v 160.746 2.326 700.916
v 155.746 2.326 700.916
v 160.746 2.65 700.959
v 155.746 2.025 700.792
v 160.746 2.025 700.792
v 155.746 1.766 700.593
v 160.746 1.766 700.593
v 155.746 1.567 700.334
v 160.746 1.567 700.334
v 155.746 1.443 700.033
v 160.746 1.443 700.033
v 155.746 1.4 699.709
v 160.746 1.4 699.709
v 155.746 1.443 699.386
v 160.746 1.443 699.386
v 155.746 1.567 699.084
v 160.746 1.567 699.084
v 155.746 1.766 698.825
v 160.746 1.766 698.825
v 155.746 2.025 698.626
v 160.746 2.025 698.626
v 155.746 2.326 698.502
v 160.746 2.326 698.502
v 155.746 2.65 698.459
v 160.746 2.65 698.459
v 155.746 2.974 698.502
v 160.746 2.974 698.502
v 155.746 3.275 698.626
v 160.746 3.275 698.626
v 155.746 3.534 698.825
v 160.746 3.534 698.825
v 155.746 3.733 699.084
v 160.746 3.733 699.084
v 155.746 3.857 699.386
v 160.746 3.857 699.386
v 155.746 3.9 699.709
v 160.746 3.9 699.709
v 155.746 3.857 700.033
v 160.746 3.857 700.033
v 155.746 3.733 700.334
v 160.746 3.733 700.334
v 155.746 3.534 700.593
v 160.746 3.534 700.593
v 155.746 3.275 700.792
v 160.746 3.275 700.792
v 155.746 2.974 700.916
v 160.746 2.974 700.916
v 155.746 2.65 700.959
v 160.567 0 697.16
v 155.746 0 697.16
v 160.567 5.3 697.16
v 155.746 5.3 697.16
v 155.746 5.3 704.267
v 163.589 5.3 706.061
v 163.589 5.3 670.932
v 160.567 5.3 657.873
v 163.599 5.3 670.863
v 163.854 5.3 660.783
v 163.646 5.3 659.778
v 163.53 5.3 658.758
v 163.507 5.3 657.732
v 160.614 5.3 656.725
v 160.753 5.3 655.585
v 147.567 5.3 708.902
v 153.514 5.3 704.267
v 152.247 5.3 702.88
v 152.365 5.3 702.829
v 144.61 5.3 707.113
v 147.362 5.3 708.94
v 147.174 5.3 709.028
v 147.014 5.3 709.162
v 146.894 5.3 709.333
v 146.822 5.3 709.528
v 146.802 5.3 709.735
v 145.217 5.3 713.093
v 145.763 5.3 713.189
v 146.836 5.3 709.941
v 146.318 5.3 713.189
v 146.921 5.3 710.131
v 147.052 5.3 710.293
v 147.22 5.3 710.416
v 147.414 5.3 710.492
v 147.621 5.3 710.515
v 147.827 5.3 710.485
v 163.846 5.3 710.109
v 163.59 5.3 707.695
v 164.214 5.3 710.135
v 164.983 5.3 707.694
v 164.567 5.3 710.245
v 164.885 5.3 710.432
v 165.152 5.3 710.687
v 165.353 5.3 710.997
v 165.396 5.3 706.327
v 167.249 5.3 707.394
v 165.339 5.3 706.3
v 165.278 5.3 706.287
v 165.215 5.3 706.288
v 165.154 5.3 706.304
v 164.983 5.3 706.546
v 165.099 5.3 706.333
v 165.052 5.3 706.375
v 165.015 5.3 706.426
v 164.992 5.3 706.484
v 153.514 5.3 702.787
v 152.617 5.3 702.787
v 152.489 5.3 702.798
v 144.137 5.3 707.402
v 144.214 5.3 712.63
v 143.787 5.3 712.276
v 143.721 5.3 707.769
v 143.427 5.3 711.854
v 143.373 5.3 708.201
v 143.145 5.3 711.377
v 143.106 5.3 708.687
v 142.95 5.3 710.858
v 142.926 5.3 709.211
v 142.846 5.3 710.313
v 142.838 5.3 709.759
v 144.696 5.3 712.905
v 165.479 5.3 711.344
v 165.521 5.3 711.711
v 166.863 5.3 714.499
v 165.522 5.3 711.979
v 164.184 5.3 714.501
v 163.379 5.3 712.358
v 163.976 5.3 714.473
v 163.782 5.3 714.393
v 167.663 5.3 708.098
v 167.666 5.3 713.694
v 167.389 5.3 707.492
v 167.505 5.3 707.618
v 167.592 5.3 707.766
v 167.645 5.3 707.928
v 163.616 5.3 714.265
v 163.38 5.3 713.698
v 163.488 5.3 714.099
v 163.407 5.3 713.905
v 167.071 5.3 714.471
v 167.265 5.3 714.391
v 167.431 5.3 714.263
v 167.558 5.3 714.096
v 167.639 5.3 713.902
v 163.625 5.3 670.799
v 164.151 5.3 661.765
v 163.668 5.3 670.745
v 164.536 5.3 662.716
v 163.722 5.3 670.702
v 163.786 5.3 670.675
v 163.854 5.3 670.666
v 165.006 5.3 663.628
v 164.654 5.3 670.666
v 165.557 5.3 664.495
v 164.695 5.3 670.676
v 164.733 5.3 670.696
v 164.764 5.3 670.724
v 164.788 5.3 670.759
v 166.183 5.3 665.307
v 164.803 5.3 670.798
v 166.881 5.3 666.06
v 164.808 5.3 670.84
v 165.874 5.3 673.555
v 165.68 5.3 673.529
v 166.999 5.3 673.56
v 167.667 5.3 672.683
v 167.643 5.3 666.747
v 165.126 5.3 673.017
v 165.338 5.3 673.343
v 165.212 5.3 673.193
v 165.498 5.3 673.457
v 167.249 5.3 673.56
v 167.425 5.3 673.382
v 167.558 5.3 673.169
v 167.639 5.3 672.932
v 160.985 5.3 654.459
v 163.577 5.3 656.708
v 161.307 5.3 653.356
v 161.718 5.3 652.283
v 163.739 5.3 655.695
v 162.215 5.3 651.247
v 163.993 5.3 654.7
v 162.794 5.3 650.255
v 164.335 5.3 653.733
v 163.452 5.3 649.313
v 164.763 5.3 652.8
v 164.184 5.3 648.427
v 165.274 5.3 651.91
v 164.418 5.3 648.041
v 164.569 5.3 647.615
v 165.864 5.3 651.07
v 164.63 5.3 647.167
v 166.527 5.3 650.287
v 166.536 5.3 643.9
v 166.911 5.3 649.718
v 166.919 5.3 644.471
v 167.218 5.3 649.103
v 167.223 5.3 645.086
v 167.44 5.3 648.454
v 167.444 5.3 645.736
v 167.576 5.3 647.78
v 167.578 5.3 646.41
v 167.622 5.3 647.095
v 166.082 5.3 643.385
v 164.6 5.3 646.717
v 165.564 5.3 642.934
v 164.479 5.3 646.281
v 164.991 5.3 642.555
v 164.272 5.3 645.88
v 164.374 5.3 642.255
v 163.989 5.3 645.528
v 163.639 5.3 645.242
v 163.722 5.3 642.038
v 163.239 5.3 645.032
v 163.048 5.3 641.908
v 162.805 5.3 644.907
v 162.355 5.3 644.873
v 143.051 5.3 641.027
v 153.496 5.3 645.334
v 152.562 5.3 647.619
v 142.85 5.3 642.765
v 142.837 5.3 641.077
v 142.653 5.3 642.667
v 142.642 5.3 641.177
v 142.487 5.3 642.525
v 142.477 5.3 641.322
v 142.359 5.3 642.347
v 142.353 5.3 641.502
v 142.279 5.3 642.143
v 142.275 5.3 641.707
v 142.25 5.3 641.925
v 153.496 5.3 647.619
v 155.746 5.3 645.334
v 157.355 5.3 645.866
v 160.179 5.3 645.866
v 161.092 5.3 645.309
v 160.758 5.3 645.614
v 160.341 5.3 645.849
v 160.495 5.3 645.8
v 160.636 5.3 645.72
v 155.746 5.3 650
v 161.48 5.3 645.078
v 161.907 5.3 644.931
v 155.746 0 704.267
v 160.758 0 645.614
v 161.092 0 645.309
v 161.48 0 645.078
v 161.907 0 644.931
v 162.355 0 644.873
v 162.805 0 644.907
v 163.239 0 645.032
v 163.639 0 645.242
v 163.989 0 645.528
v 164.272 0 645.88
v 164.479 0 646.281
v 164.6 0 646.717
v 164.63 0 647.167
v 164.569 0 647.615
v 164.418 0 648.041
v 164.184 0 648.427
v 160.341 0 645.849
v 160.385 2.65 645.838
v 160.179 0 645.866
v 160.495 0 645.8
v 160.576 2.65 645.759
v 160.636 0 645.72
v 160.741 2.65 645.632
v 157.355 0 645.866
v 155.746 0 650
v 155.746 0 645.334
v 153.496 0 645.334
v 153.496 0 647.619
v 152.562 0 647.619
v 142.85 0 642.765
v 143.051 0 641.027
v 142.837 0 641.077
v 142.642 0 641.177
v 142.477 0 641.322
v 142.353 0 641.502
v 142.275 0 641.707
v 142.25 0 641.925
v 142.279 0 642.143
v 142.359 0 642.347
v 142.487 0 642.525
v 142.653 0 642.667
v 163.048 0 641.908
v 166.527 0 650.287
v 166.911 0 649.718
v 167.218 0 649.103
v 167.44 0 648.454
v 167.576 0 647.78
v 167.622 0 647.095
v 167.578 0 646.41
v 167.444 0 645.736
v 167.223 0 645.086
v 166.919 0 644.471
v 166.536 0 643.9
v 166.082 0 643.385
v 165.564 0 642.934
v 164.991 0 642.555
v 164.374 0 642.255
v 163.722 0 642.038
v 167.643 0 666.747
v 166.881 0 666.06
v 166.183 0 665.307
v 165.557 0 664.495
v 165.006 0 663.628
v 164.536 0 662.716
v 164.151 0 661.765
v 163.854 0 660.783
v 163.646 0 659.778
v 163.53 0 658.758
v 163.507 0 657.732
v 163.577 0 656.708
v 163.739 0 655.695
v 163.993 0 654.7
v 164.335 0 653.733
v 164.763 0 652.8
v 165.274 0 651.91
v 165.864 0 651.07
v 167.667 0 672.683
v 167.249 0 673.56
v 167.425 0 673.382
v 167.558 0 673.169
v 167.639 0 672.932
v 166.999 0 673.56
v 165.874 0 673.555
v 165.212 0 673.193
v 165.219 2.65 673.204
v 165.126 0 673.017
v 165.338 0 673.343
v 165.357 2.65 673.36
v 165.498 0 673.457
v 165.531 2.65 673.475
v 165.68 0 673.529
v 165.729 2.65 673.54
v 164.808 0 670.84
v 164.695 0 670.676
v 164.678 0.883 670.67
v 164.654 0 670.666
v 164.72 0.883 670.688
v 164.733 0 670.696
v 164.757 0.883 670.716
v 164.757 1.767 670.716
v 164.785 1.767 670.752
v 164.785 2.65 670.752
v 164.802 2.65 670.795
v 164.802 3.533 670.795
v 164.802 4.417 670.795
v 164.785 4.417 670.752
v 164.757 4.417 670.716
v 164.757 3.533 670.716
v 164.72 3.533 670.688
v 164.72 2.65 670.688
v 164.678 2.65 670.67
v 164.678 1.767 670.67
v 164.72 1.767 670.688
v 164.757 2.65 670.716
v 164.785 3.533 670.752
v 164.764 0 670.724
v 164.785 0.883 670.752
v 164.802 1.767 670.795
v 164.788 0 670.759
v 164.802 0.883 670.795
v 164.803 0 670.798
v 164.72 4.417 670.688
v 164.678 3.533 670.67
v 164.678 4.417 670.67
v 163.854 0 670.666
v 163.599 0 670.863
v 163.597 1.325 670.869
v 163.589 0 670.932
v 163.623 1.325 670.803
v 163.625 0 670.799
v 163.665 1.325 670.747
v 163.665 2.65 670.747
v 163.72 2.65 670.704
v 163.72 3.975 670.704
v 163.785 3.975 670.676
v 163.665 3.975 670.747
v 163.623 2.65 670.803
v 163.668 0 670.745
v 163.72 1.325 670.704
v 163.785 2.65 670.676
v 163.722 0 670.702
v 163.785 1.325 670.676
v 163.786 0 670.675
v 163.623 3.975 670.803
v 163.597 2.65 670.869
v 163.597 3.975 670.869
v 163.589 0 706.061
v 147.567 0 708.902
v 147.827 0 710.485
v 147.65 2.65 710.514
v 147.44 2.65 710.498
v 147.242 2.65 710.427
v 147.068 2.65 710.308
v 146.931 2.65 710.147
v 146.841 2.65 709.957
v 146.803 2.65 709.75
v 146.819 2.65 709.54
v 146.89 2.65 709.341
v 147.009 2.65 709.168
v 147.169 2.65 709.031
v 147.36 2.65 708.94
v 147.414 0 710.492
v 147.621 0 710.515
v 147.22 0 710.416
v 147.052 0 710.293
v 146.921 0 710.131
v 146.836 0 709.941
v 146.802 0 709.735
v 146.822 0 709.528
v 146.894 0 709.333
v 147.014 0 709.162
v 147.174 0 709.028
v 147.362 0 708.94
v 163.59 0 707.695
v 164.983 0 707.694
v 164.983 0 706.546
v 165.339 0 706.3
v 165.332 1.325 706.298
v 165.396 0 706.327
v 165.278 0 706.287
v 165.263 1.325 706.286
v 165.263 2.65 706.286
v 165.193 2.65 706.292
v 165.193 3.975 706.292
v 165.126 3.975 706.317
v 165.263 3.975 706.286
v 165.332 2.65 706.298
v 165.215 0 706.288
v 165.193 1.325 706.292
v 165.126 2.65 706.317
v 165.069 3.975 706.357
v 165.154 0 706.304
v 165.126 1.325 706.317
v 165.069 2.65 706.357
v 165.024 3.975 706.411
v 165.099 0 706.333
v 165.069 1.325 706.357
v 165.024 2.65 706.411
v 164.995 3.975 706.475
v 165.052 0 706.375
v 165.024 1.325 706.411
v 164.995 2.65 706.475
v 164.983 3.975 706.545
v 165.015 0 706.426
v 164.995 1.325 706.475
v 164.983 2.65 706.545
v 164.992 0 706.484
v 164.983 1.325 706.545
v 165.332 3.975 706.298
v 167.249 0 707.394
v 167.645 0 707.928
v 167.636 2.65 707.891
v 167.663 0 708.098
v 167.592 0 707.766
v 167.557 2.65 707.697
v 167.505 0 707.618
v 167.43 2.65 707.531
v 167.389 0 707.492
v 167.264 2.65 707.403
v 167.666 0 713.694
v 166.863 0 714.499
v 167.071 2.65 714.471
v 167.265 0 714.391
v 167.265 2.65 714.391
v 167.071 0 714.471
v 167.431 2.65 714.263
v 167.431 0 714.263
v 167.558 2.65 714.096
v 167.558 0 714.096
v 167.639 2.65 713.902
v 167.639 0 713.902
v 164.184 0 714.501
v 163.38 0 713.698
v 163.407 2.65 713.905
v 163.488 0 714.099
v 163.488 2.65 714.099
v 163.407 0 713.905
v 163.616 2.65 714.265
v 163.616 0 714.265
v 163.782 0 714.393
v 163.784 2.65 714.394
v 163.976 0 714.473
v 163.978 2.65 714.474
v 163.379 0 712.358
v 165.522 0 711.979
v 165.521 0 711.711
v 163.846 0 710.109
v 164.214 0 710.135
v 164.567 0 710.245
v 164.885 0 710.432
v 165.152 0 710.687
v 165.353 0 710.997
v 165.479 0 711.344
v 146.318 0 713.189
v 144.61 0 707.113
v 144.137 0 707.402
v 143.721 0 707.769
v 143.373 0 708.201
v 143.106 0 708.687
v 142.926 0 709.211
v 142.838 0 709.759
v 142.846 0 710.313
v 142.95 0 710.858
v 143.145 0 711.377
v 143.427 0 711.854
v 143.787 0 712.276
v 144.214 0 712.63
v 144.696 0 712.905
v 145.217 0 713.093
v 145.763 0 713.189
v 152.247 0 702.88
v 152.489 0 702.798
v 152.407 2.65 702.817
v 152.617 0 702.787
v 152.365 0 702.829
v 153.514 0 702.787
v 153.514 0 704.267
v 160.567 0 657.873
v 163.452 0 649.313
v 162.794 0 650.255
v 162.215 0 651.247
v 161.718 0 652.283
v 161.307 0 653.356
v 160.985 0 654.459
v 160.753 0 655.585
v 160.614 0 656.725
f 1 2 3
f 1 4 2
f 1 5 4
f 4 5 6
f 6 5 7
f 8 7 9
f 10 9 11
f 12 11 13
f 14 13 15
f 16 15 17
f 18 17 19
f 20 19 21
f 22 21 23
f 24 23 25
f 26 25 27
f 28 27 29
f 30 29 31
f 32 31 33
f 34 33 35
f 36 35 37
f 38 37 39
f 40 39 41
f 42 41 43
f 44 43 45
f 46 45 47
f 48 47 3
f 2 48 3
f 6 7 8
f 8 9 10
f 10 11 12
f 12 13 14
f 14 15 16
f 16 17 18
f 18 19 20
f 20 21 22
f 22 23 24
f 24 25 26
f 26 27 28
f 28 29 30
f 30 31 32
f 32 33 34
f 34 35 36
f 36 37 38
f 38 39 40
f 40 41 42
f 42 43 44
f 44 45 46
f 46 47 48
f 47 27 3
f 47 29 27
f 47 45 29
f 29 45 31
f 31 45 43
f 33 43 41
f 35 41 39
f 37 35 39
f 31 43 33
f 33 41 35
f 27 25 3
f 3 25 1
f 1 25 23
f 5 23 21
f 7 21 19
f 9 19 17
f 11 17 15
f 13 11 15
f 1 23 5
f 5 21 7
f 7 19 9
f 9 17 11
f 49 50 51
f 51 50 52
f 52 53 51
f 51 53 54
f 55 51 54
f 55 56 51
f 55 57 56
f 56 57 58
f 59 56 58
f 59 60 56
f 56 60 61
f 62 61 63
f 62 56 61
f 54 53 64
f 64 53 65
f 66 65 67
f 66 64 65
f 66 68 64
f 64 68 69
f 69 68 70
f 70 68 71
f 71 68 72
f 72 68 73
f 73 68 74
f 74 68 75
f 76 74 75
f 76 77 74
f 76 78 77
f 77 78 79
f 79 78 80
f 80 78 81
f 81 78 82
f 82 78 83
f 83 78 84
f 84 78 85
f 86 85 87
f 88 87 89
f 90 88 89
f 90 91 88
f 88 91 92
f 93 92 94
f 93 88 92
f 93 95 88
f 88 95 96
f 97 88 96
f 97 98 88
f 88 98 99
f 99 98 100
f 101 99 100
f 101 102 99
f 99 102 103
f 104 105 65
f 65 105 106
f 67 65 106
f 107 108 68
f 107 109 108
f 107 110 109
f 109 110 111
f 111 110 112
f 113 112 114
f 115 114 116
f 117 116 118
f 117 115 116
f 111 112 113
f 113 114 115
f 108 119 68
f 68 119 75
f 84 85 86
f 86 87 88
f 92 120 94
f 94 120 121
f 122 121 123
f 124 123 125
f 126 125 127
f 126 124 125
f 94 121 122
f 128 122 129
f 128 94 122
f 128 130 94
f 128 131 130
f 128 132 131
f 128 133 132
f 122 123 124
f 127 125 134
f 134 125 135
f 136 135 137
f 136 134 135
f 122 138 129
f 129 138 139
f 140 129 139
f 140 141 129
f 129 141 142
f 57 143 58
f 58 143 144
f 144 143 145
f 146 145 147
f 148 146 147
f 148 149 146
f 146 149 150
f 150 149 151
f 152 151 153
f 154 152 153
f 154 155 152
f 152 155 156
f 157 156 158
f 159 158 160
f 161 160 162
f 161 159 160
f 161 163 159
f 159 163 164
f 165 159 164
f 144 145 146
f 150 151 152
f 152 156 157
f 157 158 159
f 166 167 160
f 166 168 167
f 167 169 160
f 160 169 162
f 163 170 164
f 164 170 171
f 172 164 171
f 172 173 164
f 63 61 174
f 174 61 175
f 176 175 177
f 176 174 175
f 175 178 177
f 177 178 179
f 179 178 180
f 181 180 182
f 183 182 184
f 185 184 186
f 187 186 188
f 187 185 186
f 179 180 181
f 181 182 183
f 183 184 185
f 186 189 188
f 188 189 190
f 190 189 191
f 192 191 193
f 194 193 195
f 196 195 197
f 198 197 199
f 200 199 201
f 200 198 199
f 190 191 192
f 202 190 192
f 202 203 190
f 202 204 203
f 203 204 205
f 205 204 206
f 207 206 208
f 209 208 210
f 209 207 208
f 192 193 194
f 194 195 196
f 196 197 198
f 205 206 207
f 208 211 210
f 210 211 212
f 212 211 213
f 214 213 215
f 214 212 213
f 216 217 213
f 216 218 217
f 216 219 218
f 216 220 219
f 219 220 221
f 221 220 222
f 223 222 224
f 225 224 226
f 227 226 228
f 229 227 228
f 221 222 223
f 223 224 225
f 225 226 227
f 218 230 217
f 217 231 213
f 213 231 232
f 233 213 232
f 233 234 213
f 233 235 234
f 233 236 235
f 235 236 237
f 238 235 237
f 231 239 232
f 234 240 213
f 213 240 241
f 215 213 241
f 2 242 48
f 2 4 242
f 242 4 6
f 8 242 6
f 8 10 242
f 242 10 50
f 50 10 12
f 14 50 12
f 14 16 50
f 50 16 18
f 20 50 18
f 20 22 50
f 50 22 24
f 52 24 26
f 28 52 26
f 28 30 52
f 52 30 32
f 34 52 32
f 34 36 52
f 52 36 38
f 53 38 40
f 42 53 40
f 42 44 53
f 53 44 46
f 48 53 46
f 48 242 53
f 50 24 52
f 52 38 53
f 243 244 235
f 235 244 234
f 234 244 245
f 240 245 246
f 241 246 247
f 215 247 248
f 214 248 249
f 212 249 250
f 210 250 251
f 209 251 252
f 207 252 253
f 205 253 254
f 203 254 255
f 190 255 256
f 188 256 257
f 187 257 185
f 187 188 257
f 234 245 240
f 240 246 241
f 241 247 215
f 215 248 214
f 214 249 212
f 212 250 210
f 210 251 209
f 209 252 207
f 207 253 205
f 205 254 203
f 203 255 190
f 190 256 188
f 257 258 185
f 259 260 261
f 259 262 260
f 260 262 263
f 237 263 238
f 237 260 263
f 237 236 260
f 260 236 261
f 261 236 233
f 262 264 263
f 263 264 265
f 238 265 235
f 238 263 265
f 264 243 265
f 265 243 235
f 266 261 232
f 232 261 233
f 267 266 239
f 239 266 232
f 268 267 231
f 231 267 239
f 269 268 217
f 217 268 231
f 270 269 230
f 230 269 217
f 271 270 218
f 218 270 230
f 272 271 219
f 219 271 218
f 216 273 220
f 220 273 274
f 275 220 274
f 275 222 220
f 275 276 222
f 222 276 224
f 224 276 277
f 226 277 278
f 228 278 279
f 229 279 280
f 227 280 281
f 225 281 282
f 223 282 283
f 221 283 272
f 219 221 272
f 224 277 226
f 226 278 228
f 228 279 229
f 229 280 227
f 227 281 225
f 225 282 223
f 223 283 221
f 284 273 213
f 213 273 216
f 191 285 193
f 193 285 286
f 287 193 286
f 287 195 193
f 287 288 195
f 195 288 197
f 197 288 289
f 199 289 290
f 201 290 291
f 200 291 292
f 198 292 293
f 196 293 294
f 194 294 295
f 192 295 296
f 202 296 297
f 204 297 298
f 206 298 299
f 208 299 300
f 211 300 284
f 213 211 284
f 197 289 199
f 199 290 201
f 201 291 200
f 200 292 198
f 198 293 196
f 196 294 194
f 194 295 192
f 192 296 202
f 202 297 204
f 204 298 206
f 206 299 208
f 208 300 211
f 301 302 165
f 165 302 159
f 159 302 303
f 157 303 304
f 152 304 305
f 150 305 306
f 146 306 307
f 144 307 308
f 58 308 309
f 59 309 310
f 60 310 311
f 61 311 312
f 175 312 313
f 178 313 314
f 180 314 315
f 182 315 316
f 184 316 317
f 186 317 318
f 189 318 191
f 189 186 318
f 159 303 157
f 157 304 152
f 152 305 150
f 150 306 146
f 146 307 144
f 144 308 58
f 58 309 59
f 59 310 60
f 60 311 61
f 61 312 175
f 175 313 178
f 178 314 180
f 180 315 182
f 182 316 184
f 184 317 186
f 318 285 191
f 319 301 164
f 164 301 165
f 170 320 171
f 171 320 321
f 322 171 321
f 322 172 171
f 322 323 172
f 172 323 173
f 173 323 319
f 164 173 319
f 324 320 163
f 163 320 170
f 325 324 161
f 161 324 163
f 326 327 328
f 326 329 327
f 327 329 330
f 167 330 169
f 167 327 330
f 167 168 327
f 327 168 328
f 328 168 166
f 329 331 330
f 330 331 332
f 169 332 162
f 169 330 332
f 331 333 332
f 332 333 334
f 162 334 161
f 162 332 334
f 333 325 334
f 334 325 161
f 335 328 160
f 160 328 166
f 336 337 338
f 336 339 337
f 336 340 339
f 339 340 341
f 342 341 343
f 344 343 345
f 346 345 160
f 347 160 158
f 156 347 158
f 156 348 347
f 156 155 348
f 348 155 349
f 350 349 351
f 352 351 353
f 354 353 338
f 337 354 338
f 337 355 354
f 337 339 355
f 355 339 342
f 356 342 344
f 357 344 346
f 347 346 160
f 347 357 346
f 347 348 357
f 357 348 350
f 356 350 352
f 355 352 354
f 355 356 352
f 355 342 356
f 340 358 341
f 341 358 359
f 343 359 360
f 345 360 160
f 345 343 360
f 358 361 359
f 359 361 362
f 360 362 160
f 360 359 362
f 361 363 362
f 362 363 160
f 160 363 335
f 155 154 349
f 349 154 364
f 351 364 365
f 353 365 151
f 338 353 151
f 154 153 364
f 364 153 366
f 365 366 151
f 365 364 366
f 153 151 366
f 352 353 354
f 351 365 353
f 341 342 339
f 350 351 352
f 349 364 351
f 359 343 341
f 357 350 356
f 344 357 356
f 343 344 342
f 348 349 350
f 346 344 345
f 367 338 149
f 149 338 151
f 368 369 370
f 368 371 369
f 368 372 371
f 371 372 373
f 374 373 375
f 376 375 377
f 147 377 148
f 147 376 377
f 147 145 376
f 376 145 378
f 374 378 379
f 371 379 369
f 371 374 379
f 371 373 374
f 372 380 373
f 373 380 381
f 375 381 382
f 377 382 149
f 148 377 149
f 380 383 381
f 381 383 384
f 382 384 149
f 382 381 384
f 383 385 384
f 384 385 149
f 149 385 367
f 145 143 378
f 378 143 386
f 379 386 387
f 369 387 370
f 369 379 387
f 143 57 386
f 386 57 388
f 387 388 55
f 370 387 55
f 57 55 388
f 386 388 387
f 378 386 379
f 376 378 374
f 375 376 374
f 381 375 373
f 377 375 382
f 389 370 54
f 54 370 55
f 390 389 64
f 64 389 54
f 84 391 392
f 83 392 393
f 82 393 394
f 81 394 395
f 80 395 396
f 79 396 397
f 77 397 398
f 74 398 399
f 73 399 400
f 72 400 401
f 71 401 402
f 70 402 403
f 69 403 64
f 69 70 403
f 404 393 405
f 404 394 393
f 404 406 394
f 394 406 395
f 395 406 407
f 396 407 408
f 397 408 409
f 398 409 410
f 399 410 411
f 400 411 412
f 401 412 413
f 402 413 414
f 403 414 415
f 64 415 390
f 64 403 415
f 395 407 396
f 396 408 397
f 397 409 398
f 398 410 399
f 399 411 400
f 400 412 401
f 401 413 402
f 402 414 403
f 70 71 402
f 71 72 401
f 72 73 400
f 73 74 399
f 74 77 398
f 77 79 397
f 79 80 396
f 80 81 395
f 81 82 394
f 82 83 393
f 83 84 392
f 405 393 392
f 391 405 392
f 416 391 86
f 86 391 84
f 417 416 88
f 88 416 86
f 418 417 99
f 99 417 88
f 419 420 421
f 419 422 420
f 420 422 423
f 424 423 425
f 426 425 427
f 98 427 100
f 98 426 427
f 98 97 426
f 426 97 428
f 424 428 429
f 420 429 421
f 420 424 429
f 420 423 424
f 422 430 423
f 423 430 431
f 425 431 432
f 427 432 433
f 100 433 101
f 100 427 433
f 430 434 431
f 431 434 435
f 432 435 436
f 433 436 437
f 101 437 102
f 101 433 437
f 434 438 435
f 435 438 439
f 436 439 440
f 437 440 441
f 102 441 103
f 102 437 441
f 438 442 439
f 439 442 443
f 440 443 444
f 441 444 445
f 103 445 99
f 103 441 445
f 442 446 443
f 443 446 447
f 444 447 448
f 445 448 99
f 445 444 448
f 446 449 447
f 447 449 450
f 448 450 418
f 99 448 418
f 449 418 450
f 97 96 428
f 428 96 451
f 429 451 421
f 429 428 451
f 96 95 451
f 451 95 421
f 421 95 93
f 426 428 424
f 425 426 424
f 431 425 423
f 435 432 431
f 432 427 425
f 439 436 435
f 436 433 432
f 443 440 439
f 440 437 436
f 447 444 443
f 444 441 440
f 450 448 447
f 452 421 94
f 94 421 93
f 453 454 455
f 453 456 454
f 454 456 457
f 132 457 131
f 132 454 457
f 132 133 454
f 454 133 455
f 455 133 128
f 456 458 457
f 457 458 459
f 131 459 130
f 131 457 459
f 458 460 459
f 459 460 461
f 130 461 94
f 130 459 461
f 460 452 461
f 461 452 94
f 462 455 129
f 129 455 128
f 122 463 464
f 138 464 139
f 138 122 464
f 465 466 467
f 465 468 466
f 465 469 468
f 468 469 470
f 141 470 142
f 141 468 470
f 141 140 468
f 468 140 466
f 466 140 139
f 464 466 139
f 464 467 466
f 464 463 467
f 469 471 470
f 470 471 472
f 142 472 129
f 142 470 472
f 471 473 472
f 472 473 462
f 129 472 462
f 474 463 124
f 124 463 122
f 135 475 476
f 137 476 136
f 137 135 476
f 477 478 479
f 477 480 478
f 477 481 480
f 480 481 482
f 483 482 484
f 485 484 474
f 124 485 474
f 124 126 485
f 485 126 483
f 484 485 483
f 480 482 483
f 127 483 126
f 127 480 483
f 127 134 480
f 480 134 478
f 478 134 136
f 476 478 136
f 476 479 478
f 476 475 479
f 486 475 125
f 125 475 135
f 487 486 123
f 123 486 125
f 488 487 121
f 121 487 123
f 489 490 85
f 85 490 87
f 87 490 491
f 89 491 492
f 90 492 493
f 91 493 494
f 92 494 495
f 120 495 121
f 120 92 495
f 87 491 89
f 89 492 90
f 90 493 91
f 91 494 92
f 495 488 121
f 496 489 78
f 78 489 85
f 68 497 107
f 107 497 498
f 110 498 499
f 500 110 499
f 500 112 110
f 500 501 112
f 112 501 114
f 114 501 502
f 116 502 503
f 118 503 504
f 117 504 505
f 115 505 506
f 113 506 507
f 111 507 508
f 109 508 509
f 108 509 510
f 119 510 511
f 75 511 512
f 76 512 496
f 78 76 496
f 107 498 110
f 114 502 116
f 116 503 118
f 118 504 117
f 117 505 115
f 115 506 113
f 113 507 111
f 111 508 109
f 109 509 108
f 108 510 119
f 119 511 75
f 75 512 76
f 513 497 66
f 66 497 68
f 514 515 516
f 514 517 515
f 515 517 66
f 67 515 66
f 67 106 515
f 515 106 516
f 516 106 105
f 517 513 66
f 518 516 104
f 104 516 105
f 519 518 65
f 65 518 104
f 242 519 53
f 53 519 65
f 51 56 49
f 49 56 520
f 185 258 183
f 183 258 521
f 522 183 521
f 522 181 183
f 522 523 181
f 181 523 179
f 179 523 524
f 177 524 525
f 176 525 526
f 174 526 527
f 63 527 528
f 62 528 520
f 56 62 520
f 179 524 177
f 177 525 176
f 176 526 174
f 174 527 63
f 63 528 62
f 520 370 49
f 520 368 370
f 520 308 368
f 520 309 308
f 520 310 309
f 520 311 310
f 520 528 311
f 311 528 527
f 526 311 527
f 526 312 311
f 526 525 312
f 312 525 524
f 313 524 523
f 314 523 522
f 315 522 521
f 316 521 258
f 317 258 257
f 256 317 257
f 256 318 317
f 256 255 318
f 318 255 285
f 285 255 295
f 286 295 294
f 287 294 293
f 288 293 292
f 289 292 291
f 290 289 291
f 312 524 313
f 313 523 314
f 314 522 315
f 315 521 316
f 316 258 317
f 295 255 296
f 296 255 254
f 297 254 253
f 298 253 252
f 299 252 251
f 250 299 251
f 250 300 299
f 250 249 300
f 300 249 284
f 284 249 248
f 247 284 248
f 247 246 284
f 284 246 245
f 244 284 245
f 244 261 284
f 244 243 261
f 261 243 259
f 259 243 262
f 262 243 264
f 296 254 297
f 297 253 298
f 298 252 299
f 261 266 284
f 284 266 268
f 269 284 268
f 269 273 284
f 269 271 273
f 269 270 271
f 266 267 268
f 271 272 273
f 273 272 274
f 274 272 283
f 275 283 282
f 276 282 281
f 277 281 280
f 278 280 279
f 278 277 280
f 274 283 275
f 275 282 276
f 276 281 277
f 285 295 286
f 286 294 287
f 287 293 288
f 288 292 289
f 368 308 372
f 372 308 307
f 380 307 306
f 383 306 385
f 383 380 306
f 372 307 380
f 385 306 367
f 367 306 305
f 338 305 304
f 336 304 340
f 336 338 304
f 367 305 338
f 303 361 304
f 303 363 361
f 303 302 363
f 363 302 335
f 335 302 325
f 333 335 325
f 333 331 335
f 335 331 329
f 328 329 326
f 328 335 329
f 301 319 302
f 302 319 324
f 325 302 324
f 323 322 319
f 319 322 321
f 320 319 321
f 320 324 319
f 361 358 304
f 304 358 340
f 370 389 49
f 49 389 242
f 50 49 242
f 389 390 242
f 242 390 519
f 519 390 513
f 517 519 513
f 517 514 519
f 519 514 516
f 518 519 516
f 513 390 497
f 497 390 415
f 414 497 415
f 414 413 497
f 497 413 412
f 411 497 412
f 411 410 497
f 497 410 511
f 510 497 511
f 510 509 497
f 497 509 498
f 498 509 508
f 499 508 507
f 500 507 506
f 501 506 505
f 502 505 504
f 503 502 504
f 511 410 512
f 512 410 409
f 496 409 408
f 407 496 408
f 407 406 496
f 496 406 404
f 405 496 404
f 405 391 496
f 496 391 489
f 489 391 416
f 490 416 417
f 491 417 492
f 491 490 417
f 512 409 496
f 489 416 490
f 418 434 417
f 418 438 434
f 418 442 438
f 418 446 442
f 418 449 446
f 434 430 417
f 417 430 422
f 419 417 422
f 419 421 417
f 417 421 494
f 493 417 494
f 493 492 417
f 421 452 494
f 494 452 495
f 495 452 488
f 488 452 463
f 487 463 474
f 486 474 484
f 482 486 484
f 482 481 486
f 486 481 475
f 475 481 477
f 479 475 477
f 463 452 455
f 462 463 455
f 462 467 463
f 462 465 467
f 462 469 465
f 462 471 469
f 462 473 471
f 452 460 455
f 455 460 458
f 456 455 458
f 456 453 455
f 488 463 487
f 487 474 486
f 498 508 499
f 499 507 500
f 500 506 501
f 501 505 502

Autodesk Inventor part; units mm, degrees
ref_plane "YZ Plane" through (0, 0, 0) normal (1, 0, 0) x (0, 1, 0)
ref_plane "XZ Plane" through (0, 0, 0) normal (0, 1, 0) x (-1, 0, 0)
ref_plane "XY Plane" through (0, 0, 0) normal (0, 0, 1) x (1, 0, 0)
sketch "Sketch1" plane through (0, 0, 0) normal (0, 1, 0) x (-1, 0, 0)
  arc A0 (-159.7794, 702.6597) -> (-160.5669, 701.8721) centre (-159.7794, 701.8721) ccw
  line L0 (-155.7462, 702.6597) -> (-155.7462, 704.2667)
  line L1 (-155.7462, 704.2667) -> (-153.5139, 704.2667)
  line L2 (-153.5139, 704.2667) -> (-153.5139, 702.7873)
  line L3 (-153.5139, 702.7873) -> (-152.617, 702.7873)
  arc A1 (-164.1836, 648.4268) -> (-160.5669, 657.8731) centre (-174.7114, 657.8731) ccw
  line L4 (-160.5669, 657.8731) -> (-160.5669, 701.8721)
  arc A2 (-160.1794, 645.8656) -> (-160.7583, 645.6139) centre (-160.1783, 645.0714) ccw
  arc A3 (-164.1836, 648.4268) -> (-160.7583, 645.6139) centre (-162.4137, 647.0901) ccw
  line L5 (-155.7462, 648) -> (-155.7462, 645.3343)
  line L6 (-155.7462, 645.3343) -> (-153.4959, 645.3343)
  line L7 (-153.4959, 645.3343) -> (-153.4959, 647.6194)
  arc A4 (-143.0505, 641.0266) -> (-142.8499, 642.7649) centre (-143.1474, 641.9185) ccw
  line L8 (-163.0481, 641.9081) -> (-143.0505, 641.0266)
  arc A5 (-166.527, 650.2868) -> (-163.0481, 641.9081) centre (-162.4027, 647.0877) ccw
  arc A6 (-166.527, 650.2868) -> (-167.6435, 666.7468) centre (-174.834, 657.9912) ccw
  line L9 (-166.9993, 673.5601) -> (-165.874, 673.5549)
  arc A7 (-165.1258, 673.0171) -> (-165.874, 673.5549) centre (-165.8807, 672.7563) ccw
  arc A8 (-163.8545, 670.6656) -> (-163.5889, 670.9316) centre (-163.8582, 670.9349) ccw
  line L10 (-163.5889, 706.0242) -> (-163.5889, 706.0613)
  line L11 (-163.5889, 706.0613) -> (-147.5669, 708.9022)
  arc A9 (-147.5669, 708.9022) -> (-147.8271, 710.4852) centre (-147.6086, 709.7082) ccw
  line L12 (-147.8271, 710.4852) -> (-163.5899, 707.6952)
  line L13 (-163.5899, 707.6952) -> (-164.9831, 707.6944)
  line L14 (-164.9831, 707.6944) -> (-164.9826, 706.5463)
  arc A10 (-165.396, 706.3271) -> (-164.9826, 706.5463) centre (-165.2521, 706.5552) ccw
  line L15 (-165.396, 706.3271) -> (-167.2486, 707.3943)
  arc A11 (-167.6628, 708.0983) -> (-167.2486, 707.3943) centre (-166.8615, 708.0959) ccw
  line L16 (-167.6628, 708.0983) -> (-167.6658, 713.6939)
  arc A12 (-166.8627, 714.4991) -> (-167.6658, 713.6939) centre (-166.8611, 713.6943) ccw
  line L17 (-166.8627, 714.4991) -> (-164.1837, 714.5007)
  arc A13 (-163.3795, 713.6976) -> (-164.1837, 714.5007) centre (-164.1848, 713.6954) ccw
  line L18 (-163.3795, 713.6976) -> (-163.3787, 712.3581)
  line L19 (-163.3787, 712.3581) -> (-165.5216, 711.9789)
  line L20 (-165.5216, 711.9789) -> (-165.5215, 711.7106)
  arc A14 (-165.5215, 711.7106) -> (-163.8456, 710.1095) centre (-163.9177, 711.7116) ccw
  line L21 (-163.8456, 710.1095) -> (-146.318, 713.1891)
  arc A15 (-144.6103, 707.1134) -> (-146.318, 713.1891) centre (-146.0422, 709.9888) ccw
  arc A16 (-152.617, 702.7873) -> (-152.2474, 702.8795) centre (-152.6236, 703.6003) ccw
  line L22 (-155.7462, 702.6597) -> (-155.7462, 700.1597)
  line L23 (-155.7462, 700.1597) -> (-156.9462, 700.1597)
  line L24 (-156.9462, 700.1597) -> (-157.7628, 702.6597)
  line L25 (-157.7628, 702.6597) -> (-159.7794, 702.6597)
  line L26 (-155.7462, 648) -> (-155.7462, 650)
  line L27 (-155.7462, 650) -> (-157.3545, 645.8656)
  line L28 (-157.3545, 645.8656) -> (-160.1794, 645.8656)
  line L29 (-144.6103, 707.1134) -> (-152.2474, 702.8795)
  line L30 (-152.5619, 647.6194) -> (-153.4959, 647.6194)
  line L31 (-163.8545, 670.6656) -> (-164.6545, 670.6656)
  arc A17 (-164.8084, 670.8401) -> (-164.6545, 670.6656) centre (-164.6322, 670.8403) ccw
  line L32 (-163.5889, 670.9316) -> (-163.5889, 706.0613)
  line L33 (-164.8084, 670.8401) -> (-165.1258, 673.0171)
  line L34 (-167.6435, 666.7468) -> (-167.6666, 672.6833)
  line L35 (-166.9993, 673.5601) -> (-167.2486, 673.5601)
  arc A18 (-167.2486, 673.5601) -> (-167.6666, 672.6833) centre (-166.547, 672.6876) ccw
  line L36 (-142.8499, 642.7649) -> (-152.5619, 647.6194)
  point P0 (-160.5669, 683.588)
  dimension "d2" = 43.999
  dimension "d6" = 2.5
  dimension "d7" = 1.2
  dimension "d8" = 2
  dimension "d18" = 0.8
  dimension "d20" = 2.2
extrude "Extrusion1" add sketch "Sketch1" along normal blind 5.3
sketch "Sketch2" plane through (0, 0, 0) normal (0, -1, 0) x (1, 0, 0)
  line L0 (156.9462, 700.1597) -> (155.7462, 700.1597) projected
  line L1 (155.7462, 700.1597) -> (155.7462, 697.1597)
  line L2 (155.7462, 697.1597) -> (160.5669, 697.1597)
  line L3 (160.5669, 657.8731) -> (160.5669, 701.8721) projected
  line L4 (160.5669, 697.1597) -> (160.5783, 702.6397)
  line L5 (160.5783, 702.6397) -> (155.7462, 704.198)
  line L6 (155.7462, 704.198) -> (155.7462, 700.1597)
  point P0 (0, 0)
  dimension "d9" = 3
extrude "Extrusion2" add sketch "Sketch2" against normal blind 5.3
sketch "Sketch3" plane through (155.7462, 0, 704.2667) normal (-1, 0, 0) x (0, 0, 1)
  circle A0 centre (-4.5576, 2.65) radius 1.25
  line L0 (-7.107, 5.3) -> (0, 5.3) projected
  line L1 (0, 0) -> (-7.107, 0) projected
  point P0 (-704.2667, 0)
  dimension "d12" = 2.5
  dimension "d14" = 2.65
  dimension "d15" = 2.65
extrude "Extrusion3" cut sketch "Sketch3" against normal blind 5
properties part number "raspDinClipmmv3"
